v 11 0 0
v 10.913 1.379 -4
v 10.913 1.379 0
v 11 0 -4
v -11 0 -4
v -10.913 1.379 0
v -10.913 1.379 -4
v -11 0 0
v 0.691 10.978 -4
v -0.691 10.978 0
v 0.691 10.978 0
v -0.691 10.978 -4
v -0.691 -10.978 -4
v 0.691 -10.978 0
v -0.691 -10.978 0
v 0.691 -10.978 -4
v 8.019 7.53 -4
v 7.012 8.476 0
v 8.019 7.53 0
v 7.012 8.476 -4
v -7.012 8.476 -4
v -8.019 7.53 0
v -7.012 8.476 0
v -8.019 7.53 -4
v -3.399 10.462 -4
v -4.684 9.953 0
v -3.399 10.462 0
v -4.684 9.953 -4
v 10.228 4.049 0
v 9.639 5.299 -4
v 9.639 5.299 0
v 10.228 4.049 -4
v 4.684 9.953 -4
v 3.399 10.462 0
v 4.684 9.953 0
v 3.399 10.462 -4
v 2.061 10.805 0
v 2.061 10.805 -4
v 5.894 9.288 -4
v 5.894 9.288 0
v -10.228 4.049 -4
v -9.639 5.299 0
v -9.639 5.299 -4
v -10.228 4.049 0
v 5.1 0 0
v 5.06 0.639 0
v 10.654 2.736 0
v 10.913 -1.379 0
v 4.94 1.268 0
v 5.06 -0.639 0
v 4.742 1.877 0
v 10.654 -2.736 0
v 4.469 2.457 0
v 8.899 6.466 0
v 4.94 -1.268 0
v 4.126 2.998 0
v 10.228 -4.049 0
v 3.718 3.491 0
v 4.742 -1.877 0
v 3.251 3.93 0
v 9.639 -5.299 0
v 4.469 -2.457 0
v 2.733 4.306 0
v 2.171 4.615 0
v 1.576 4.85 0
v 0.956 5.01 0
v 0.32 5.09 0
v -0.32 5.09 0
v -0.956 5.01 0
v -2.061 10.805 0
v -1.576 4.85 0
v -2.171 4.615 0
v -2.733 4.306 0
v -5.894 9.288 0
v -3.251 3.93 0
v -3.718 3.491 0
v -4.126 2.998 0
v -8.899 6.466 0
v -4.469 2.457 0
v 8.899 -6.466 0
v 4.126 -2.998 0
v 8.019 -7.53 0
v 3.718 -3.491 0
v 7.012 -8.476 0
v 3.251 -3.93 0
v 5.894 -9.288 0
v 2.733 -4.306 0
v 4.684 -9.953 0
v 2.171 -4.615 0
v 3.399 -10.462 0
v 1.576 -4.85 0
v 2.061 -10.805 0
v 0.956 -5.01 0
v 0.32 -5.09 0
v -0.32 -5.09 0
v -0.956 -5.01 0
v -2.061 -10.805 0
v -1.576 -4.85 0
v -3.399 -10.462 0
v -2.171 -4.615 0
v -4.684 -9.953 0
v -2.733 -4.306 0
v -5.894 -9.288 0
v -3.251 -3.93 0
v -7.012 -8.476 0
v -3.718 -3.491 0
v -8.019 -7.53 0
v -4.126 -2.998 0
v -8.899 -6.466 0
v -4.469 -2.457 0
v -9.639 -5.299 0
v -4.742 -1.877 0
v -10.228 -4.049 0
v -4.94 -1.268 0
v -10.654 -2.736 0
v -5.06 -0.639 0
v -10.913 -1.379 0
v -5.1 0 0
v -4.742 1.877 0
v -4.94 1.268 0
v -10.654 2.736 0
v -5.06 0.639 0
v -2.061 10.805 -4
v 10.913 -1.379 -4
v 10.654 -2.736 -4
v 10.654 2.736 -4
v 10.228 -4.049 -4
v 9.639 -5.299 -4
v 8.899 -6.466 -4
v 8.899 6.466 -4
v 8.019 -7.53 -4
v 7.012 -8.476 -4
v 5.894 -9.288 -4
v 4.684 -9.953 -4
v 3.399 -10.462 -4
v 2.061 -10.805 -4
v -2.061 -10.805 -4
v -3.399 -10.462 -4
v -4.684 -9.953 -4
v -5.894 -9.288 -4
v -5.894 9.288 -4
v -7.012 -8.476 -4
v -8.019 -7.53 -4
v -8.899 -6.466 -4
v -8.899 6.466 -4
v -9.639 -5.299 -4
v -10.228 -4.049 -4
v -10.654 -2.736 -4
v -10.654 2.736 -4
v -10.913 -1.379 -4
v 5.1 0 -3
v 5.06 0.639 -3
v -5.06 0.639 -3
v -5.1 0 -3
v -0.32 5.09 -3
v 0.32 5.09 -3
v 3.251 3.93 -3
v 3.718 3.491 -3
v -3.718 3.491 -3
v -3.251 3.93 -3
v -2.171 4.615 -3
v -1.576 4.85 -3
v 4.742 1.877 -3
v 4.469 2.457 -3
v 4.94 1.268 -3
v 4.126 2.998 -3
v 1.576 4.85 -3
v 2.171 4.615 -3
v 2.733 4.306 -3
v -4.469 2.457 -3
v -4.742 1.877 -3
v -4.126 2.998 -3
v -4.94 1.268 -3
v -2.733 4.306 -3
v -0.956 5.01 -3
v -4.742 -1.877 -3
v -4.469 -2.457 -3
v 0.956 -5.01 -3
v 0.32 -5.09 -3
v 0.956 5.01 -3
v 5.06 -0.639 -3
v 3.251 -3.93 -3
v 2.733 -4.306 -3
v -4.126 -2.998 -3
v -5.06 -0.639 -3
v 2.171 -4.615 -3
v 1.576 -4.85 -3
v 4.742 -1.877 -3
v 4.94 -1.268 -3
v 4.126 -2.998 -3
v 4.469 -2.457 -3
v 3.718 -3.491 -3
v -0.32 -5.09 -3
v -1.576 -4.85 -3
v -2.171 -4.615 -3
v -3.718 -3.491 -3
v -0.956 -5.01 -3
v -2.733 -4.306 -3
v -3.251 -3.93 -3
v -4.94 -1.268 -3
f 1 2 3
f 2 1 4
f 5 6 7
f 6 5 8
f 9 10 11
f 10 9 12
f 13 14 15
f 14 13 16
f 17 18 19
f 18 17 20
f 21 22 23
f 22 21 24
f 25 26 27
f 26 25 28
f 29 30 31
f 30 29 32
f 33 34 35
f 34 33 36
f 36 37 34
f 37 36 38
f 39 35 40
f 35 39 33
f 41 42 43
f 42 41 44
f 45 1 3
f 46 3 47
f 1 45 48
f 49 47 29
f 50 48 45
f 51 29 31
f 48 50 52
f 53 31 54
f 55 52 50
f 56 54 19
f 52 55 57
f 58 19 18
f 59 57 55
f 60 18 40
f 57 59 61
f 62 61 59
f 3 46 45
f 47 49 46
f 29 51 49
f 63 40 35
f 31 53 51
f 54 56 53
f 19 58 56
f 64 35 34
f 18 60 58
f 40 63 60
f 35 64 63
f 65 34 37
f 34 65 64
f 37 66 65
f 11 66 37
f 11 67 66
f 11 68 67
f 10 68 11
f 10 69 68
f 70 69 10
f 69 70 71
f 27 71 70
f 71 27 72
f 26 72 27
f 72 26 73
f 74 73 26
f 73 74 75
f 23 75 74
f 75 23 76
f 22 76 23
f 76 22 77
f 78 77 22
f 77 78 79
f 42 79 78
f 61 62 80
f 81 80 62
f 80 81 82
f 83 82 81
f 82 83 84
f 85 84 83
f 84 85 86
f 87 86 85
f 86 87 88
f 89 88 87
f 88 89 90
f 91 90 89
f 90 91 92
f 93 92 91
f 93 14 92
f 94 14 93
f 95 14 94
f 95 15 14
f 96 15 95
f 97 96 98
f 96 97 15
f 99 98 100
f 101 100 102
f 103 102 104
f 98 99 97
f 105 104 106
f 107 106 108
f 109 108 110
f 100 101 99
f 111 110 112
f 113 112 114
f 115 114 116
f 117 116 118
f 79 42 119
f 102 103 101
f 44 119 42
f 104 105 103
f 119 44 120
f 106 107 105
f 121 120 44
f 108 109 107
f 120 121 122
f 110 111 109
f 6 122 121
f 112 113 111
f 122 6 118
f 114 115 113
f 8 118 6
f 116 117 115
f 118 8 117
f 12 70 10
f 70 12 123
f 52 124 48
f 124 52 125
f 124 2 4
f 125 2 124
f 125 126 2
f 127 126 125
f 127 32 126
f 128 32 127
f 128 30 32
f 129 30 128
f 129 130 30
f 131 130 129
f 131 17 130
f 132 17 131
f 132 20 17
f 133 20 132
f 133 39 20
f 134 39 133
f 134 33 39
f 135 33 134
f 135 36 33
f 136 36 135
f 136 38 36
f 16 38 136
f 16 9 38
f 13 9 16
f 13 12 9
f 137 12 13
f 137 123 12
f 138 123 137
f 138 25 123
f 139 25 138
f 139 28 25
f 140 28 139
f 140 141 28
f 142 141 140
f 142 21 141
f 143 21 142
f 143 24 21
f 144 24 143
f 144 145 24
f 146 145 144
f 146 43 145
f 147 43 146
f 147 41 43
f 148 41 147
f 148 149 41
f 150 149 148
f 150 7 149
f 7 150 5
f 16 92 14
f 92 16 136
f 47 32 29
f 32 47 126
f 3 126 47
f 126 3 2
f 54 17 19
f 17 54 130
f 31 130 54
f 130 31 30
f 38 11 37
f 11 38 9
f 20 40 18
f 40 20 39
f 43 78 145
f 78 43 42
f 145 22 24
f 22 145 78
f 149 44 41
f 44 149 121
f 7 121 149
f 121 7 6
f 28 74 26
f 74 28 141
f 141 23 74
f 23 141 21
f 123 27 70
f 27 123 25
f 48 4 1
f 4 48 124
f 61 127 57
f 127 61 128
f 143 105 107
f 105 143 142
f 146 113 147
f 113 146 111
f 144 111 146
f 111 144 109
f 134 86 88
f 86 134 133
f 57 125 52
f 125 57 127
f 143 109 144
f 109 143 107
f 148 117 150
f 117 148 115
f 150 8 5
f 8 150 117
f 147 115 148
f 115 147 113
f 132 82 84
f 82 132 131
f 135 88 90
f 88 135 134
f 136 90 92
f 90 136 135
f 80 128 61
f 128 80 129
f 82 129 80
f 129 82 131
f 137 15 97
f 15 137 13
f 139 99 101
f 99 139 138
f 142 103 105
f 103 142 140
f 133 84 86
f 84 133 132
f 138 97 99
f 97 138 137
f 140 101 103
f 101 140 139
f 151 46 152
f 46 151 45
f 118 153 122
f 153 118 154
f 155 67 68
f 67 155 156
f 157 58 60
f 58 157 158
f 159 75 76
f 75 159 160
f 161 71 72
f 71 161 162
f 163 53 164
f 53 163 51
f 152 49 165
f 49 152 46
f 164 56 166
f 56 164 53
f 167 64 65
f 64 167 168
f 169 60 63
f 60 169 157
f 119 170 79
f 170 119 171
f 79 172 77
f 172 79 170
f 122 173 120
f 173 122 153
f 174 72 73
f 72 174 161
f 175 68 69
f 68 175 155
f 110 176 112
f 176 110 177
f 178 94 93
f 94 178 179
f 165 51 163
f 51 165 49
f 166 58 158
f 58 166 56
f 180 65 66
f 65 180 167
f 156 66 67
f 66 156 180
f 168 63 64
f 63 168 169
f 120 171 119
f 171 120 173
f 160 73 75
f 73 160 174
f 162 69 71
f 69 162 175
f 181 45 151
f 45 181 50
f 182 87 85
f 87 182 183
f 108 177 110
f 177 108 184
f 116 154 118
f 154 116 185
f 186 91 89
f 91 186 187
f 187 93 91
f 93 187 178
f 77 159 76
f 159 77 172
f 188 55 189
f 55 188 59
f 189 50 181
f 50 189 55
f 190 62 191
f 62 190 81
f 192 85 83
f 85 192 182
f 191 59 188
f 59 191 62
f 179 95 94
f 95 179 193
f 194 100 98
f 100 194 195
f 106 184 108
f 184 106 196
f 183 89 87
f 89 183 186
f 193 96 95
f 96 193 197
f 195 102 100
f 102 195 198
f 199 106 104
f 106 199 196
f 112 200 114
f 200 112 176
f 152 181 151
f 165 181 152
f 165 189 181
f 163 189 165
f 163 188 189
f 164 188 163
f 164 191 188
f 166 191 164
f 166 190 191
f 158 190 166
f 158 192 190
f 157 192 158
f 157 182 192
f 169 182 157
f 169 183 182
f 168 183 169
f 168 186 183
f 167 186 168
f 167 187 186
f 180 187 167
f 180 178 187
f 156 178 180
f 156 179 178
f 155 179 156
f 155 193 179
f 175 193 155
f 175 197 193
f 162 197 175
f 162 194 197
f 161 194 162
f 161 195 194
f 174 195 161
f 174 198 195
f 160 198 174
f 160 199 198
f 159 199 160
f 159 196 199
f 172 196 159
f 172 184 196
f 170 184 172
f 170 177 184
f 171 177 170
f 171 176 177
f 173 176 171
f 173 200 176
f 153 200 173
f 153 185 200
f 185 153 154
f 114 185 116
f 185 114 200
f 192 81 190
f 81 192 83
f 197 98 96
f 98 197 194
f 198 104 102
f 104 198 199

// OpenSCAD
$fn = 50;


difference() {
	union() {
		translate(v = [0, 0, -4.0000000000]) {
			cylinder(h = 4, r = 11.0000000000);
		}
	}
	union() {
		#translate(v = [0, 0, -3.0000000000]) {
			cylinder(h = 3, r = 5.1000000000);
		}
	}
}
